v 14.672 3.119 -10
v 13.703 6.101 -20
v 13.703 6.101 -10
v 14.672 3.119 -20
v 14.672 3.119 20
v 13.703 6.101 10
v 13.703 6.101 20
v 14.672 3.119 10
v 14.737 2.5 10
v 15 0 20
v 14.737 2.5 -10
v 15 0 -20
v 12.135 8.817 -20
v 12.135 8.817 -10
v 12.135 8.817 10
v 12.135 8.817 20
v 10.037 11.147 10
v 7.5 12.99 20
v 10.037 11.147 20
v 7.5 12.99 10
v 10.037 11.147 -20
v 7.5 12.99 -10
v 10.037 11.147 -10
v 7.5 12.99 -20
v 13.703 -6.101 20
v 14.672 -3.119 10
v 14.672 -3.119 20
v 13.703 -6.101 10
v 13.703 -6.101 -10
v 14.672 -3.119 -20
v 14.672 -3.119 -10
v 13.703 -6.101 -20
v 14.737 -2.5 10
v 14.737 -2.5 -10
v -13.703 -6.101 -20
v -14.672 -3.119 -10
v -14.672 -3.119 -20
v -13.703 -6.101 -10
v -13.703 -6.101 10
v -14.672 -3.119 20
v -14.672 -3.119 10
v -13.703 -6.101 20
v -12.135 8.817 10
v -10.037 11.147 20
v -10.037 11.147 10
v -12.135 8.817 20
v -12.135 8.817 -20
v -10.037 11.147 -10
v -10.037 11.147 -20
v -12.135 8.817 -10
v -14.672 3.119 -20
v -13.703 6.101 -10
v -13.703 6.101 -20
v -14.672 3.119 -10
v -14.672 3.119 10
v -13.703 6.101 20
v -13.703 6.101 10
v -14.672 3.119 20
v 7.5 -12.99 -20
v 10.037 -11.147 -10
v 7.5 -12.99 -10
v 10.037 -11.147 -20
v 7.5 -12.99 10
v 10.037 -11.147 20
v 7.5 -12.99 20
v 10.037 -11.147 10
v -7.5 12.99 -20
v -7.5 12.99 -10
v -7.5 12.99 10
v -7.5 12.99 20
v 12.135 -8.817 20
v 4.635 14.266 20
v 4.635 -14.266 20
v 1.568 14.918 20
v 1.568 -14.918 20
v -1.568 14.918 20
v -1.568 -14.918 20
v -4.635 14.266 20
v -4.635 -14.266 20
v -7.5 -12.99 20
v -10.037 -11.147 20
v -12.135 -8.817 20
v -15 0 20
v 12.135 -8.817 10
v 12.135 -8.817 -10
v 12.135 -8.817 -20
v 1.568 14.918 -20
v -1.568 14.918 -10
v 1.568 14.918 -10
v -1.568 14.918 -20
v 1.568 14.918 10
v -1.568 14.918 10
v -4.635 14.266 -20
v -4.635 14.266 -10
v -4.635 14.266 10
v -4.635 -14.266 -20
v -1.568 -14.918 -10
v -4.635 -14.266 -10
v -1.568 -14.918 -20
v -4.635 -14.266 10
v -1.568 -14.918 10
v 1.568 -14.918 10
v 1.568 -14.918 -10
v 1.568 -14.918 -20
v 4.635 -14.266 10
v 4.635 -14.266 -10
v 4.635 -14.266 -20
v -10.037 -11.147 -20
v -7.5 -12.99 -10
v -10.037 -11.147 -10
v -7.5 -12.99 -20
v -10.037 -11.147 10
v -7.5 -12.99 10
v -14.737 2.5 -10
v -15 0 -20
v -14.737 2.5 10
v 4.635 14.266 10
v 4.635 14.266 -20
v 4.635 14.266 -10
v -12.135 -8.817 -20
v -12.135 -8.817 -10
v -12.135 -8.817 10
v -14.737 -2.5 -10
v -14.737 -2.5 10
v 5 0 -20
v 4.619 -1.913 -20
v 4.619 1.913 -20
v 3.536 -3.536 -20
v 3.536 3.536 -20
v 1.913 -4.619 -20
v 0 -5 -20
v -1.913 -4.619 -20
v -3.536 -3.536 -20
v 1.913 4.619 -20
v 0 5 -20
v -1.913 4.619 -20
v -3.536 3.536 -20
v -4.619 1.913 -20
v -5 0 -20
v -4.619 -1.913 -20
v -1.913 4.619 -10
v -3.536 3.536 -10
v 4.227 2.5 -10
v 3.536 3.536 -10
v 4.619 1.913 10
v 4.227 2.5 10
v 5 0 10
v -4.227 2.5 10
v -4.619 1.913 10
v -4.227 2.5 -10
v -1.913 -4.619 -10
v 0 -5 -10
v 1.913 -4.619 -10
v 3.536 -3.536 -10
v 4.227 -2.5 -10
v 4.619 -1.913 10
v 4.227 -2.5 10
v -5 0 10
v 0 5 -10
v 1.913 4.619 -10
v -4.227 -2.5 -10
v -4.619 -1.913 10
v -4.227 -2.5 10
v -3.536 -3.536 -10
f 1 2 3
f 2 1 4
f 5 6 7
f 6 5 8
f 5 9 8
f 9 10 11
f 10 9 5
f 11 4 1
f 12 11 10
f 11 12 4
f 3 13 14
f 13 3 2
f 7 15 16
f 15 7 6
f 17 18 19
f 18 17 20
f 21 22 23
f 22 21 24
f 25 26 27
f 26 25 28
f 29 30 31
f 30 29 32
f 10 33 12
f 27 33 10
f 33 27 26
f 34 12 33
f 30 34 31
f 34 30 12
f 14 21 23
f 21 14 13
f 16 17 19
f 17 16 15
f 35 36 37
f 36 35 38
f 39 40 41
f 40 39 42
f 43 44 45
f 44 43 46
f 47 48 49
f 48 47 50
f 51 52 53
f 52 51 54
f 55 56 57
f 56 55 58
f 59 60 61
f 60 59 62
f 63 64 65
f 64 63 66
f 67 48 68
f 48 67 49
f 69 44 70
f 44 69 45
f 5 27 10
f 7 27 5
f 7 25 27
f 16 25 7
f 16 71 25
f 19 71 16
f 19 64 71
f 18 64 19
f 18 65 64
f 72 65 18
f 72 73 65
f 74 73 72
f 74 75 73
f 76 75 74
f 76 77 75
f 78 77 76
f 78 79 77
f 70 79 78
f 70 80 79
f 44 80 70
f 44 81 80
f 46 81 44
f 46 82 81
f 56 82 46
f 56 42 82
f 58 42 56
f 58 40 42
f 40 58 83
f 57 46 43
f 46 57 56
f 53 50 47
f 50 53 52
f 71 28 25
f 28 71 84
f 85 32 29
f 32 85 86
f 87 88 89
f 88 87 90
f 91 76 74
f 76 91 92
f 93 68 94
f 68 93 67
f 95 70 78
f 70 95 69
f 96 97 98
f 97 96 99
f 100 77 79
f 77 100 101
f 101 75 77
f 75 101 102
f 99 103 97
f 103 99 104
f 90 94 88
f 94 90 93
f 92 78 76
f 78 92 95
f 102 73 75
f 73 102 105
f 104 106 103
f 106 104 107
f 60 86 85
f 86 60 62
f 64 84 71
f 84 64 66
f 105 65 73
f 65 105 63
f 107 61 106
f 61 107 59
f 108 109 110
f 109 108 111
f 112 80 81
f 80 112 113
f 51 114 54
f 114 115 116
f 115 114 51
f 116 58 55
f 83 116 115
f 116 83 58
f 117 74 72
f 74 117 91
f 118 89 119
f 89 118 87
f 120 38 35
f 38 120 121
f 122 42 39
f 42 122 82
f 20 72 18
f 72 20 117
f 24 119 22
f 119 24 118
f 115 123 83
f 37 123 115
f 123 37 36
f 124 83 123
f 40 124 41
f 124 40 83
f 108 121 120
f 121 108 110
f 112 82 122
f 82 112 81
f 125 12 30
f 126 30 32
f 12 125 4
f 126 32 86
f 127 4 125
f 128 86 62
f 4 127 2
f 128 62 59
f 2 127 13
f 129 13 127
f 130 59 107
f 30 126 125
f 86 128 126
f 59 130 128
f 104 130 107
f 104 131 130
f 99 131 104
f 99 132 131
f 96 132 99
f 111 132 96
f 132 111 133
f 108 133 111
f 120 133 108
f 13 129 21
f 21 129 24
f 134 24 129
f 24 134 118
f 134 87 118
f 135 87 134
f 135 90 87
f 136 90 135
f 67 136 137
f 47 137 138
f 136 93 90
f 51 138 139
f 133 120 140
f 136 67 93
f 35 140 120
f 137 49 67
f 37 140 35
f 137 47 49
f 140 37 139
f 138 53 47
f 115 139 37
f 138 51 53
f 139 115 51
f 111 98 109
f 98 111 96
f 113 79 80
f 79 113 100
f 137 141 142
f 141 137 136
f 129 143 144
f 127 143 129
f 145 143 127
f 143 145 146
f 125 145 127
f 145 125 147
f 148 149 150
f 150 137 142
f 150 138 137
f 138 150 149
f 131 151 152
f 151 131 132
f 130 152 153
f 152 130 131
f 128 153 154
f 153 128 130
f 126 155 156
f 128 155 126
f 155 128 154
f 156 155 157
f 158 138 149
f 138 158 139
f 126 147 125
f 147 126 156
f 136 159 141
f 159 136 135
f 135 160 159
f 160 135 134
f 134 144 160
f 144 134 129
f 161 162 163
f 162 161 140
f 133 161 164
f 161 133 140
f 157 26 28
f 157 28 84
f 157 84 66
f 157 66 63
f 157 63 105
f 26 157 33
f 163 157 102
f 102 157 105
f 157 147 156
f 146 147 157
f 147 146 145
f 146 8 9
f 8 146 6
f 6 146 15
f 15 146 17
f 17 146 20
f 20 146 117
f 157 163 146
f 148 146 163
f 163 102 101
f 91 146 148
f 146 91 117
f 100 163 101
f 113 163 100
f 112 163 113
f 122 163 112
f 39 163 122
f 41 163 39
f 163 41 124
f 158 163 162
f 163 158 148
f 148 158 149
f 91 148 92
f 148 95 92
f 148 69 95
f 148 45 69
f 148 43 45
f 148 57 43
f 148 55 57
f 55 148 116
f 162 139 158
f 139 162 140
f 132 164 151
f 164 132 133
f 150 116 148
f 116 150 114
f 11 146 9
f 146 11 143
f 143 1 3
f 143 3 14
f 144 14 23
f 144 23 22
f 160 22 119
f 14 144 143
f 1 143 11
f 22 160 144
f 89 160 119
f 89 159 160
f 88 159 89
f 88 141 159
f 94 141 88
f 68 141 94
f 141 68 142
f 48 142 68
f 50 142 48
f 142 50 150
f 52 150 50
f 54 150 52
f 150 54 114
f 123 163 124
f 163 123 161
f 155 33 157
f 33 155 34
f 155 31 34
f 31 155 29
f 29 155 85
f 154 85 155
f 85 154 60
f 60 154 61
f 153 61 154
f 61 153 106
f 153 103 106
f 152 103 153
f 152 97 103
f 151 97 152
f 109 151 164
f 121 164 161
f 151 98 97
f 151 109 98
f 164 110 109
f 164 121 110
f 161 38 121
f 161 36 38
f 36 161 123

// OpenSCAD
module main_object() {
    difference() {
        // Main cylinder
        cylinder(h = 40, r = 15, center = true);
        
        // Central hole
        translate([0, 0, -20])
            cylinder(h = 60, r = 5, center = true);
        
        // Side cutout 1
        translate([0, 10, 0])
            rotate([90, 0, 0])
                cube([40, 20, 15], center = true);

        // Side cutout 2
        translate([0, -10, 0])
            rotate([90, 0, 0])
                cube([40, 20, 15], center = true);
    }
}

main_object();
